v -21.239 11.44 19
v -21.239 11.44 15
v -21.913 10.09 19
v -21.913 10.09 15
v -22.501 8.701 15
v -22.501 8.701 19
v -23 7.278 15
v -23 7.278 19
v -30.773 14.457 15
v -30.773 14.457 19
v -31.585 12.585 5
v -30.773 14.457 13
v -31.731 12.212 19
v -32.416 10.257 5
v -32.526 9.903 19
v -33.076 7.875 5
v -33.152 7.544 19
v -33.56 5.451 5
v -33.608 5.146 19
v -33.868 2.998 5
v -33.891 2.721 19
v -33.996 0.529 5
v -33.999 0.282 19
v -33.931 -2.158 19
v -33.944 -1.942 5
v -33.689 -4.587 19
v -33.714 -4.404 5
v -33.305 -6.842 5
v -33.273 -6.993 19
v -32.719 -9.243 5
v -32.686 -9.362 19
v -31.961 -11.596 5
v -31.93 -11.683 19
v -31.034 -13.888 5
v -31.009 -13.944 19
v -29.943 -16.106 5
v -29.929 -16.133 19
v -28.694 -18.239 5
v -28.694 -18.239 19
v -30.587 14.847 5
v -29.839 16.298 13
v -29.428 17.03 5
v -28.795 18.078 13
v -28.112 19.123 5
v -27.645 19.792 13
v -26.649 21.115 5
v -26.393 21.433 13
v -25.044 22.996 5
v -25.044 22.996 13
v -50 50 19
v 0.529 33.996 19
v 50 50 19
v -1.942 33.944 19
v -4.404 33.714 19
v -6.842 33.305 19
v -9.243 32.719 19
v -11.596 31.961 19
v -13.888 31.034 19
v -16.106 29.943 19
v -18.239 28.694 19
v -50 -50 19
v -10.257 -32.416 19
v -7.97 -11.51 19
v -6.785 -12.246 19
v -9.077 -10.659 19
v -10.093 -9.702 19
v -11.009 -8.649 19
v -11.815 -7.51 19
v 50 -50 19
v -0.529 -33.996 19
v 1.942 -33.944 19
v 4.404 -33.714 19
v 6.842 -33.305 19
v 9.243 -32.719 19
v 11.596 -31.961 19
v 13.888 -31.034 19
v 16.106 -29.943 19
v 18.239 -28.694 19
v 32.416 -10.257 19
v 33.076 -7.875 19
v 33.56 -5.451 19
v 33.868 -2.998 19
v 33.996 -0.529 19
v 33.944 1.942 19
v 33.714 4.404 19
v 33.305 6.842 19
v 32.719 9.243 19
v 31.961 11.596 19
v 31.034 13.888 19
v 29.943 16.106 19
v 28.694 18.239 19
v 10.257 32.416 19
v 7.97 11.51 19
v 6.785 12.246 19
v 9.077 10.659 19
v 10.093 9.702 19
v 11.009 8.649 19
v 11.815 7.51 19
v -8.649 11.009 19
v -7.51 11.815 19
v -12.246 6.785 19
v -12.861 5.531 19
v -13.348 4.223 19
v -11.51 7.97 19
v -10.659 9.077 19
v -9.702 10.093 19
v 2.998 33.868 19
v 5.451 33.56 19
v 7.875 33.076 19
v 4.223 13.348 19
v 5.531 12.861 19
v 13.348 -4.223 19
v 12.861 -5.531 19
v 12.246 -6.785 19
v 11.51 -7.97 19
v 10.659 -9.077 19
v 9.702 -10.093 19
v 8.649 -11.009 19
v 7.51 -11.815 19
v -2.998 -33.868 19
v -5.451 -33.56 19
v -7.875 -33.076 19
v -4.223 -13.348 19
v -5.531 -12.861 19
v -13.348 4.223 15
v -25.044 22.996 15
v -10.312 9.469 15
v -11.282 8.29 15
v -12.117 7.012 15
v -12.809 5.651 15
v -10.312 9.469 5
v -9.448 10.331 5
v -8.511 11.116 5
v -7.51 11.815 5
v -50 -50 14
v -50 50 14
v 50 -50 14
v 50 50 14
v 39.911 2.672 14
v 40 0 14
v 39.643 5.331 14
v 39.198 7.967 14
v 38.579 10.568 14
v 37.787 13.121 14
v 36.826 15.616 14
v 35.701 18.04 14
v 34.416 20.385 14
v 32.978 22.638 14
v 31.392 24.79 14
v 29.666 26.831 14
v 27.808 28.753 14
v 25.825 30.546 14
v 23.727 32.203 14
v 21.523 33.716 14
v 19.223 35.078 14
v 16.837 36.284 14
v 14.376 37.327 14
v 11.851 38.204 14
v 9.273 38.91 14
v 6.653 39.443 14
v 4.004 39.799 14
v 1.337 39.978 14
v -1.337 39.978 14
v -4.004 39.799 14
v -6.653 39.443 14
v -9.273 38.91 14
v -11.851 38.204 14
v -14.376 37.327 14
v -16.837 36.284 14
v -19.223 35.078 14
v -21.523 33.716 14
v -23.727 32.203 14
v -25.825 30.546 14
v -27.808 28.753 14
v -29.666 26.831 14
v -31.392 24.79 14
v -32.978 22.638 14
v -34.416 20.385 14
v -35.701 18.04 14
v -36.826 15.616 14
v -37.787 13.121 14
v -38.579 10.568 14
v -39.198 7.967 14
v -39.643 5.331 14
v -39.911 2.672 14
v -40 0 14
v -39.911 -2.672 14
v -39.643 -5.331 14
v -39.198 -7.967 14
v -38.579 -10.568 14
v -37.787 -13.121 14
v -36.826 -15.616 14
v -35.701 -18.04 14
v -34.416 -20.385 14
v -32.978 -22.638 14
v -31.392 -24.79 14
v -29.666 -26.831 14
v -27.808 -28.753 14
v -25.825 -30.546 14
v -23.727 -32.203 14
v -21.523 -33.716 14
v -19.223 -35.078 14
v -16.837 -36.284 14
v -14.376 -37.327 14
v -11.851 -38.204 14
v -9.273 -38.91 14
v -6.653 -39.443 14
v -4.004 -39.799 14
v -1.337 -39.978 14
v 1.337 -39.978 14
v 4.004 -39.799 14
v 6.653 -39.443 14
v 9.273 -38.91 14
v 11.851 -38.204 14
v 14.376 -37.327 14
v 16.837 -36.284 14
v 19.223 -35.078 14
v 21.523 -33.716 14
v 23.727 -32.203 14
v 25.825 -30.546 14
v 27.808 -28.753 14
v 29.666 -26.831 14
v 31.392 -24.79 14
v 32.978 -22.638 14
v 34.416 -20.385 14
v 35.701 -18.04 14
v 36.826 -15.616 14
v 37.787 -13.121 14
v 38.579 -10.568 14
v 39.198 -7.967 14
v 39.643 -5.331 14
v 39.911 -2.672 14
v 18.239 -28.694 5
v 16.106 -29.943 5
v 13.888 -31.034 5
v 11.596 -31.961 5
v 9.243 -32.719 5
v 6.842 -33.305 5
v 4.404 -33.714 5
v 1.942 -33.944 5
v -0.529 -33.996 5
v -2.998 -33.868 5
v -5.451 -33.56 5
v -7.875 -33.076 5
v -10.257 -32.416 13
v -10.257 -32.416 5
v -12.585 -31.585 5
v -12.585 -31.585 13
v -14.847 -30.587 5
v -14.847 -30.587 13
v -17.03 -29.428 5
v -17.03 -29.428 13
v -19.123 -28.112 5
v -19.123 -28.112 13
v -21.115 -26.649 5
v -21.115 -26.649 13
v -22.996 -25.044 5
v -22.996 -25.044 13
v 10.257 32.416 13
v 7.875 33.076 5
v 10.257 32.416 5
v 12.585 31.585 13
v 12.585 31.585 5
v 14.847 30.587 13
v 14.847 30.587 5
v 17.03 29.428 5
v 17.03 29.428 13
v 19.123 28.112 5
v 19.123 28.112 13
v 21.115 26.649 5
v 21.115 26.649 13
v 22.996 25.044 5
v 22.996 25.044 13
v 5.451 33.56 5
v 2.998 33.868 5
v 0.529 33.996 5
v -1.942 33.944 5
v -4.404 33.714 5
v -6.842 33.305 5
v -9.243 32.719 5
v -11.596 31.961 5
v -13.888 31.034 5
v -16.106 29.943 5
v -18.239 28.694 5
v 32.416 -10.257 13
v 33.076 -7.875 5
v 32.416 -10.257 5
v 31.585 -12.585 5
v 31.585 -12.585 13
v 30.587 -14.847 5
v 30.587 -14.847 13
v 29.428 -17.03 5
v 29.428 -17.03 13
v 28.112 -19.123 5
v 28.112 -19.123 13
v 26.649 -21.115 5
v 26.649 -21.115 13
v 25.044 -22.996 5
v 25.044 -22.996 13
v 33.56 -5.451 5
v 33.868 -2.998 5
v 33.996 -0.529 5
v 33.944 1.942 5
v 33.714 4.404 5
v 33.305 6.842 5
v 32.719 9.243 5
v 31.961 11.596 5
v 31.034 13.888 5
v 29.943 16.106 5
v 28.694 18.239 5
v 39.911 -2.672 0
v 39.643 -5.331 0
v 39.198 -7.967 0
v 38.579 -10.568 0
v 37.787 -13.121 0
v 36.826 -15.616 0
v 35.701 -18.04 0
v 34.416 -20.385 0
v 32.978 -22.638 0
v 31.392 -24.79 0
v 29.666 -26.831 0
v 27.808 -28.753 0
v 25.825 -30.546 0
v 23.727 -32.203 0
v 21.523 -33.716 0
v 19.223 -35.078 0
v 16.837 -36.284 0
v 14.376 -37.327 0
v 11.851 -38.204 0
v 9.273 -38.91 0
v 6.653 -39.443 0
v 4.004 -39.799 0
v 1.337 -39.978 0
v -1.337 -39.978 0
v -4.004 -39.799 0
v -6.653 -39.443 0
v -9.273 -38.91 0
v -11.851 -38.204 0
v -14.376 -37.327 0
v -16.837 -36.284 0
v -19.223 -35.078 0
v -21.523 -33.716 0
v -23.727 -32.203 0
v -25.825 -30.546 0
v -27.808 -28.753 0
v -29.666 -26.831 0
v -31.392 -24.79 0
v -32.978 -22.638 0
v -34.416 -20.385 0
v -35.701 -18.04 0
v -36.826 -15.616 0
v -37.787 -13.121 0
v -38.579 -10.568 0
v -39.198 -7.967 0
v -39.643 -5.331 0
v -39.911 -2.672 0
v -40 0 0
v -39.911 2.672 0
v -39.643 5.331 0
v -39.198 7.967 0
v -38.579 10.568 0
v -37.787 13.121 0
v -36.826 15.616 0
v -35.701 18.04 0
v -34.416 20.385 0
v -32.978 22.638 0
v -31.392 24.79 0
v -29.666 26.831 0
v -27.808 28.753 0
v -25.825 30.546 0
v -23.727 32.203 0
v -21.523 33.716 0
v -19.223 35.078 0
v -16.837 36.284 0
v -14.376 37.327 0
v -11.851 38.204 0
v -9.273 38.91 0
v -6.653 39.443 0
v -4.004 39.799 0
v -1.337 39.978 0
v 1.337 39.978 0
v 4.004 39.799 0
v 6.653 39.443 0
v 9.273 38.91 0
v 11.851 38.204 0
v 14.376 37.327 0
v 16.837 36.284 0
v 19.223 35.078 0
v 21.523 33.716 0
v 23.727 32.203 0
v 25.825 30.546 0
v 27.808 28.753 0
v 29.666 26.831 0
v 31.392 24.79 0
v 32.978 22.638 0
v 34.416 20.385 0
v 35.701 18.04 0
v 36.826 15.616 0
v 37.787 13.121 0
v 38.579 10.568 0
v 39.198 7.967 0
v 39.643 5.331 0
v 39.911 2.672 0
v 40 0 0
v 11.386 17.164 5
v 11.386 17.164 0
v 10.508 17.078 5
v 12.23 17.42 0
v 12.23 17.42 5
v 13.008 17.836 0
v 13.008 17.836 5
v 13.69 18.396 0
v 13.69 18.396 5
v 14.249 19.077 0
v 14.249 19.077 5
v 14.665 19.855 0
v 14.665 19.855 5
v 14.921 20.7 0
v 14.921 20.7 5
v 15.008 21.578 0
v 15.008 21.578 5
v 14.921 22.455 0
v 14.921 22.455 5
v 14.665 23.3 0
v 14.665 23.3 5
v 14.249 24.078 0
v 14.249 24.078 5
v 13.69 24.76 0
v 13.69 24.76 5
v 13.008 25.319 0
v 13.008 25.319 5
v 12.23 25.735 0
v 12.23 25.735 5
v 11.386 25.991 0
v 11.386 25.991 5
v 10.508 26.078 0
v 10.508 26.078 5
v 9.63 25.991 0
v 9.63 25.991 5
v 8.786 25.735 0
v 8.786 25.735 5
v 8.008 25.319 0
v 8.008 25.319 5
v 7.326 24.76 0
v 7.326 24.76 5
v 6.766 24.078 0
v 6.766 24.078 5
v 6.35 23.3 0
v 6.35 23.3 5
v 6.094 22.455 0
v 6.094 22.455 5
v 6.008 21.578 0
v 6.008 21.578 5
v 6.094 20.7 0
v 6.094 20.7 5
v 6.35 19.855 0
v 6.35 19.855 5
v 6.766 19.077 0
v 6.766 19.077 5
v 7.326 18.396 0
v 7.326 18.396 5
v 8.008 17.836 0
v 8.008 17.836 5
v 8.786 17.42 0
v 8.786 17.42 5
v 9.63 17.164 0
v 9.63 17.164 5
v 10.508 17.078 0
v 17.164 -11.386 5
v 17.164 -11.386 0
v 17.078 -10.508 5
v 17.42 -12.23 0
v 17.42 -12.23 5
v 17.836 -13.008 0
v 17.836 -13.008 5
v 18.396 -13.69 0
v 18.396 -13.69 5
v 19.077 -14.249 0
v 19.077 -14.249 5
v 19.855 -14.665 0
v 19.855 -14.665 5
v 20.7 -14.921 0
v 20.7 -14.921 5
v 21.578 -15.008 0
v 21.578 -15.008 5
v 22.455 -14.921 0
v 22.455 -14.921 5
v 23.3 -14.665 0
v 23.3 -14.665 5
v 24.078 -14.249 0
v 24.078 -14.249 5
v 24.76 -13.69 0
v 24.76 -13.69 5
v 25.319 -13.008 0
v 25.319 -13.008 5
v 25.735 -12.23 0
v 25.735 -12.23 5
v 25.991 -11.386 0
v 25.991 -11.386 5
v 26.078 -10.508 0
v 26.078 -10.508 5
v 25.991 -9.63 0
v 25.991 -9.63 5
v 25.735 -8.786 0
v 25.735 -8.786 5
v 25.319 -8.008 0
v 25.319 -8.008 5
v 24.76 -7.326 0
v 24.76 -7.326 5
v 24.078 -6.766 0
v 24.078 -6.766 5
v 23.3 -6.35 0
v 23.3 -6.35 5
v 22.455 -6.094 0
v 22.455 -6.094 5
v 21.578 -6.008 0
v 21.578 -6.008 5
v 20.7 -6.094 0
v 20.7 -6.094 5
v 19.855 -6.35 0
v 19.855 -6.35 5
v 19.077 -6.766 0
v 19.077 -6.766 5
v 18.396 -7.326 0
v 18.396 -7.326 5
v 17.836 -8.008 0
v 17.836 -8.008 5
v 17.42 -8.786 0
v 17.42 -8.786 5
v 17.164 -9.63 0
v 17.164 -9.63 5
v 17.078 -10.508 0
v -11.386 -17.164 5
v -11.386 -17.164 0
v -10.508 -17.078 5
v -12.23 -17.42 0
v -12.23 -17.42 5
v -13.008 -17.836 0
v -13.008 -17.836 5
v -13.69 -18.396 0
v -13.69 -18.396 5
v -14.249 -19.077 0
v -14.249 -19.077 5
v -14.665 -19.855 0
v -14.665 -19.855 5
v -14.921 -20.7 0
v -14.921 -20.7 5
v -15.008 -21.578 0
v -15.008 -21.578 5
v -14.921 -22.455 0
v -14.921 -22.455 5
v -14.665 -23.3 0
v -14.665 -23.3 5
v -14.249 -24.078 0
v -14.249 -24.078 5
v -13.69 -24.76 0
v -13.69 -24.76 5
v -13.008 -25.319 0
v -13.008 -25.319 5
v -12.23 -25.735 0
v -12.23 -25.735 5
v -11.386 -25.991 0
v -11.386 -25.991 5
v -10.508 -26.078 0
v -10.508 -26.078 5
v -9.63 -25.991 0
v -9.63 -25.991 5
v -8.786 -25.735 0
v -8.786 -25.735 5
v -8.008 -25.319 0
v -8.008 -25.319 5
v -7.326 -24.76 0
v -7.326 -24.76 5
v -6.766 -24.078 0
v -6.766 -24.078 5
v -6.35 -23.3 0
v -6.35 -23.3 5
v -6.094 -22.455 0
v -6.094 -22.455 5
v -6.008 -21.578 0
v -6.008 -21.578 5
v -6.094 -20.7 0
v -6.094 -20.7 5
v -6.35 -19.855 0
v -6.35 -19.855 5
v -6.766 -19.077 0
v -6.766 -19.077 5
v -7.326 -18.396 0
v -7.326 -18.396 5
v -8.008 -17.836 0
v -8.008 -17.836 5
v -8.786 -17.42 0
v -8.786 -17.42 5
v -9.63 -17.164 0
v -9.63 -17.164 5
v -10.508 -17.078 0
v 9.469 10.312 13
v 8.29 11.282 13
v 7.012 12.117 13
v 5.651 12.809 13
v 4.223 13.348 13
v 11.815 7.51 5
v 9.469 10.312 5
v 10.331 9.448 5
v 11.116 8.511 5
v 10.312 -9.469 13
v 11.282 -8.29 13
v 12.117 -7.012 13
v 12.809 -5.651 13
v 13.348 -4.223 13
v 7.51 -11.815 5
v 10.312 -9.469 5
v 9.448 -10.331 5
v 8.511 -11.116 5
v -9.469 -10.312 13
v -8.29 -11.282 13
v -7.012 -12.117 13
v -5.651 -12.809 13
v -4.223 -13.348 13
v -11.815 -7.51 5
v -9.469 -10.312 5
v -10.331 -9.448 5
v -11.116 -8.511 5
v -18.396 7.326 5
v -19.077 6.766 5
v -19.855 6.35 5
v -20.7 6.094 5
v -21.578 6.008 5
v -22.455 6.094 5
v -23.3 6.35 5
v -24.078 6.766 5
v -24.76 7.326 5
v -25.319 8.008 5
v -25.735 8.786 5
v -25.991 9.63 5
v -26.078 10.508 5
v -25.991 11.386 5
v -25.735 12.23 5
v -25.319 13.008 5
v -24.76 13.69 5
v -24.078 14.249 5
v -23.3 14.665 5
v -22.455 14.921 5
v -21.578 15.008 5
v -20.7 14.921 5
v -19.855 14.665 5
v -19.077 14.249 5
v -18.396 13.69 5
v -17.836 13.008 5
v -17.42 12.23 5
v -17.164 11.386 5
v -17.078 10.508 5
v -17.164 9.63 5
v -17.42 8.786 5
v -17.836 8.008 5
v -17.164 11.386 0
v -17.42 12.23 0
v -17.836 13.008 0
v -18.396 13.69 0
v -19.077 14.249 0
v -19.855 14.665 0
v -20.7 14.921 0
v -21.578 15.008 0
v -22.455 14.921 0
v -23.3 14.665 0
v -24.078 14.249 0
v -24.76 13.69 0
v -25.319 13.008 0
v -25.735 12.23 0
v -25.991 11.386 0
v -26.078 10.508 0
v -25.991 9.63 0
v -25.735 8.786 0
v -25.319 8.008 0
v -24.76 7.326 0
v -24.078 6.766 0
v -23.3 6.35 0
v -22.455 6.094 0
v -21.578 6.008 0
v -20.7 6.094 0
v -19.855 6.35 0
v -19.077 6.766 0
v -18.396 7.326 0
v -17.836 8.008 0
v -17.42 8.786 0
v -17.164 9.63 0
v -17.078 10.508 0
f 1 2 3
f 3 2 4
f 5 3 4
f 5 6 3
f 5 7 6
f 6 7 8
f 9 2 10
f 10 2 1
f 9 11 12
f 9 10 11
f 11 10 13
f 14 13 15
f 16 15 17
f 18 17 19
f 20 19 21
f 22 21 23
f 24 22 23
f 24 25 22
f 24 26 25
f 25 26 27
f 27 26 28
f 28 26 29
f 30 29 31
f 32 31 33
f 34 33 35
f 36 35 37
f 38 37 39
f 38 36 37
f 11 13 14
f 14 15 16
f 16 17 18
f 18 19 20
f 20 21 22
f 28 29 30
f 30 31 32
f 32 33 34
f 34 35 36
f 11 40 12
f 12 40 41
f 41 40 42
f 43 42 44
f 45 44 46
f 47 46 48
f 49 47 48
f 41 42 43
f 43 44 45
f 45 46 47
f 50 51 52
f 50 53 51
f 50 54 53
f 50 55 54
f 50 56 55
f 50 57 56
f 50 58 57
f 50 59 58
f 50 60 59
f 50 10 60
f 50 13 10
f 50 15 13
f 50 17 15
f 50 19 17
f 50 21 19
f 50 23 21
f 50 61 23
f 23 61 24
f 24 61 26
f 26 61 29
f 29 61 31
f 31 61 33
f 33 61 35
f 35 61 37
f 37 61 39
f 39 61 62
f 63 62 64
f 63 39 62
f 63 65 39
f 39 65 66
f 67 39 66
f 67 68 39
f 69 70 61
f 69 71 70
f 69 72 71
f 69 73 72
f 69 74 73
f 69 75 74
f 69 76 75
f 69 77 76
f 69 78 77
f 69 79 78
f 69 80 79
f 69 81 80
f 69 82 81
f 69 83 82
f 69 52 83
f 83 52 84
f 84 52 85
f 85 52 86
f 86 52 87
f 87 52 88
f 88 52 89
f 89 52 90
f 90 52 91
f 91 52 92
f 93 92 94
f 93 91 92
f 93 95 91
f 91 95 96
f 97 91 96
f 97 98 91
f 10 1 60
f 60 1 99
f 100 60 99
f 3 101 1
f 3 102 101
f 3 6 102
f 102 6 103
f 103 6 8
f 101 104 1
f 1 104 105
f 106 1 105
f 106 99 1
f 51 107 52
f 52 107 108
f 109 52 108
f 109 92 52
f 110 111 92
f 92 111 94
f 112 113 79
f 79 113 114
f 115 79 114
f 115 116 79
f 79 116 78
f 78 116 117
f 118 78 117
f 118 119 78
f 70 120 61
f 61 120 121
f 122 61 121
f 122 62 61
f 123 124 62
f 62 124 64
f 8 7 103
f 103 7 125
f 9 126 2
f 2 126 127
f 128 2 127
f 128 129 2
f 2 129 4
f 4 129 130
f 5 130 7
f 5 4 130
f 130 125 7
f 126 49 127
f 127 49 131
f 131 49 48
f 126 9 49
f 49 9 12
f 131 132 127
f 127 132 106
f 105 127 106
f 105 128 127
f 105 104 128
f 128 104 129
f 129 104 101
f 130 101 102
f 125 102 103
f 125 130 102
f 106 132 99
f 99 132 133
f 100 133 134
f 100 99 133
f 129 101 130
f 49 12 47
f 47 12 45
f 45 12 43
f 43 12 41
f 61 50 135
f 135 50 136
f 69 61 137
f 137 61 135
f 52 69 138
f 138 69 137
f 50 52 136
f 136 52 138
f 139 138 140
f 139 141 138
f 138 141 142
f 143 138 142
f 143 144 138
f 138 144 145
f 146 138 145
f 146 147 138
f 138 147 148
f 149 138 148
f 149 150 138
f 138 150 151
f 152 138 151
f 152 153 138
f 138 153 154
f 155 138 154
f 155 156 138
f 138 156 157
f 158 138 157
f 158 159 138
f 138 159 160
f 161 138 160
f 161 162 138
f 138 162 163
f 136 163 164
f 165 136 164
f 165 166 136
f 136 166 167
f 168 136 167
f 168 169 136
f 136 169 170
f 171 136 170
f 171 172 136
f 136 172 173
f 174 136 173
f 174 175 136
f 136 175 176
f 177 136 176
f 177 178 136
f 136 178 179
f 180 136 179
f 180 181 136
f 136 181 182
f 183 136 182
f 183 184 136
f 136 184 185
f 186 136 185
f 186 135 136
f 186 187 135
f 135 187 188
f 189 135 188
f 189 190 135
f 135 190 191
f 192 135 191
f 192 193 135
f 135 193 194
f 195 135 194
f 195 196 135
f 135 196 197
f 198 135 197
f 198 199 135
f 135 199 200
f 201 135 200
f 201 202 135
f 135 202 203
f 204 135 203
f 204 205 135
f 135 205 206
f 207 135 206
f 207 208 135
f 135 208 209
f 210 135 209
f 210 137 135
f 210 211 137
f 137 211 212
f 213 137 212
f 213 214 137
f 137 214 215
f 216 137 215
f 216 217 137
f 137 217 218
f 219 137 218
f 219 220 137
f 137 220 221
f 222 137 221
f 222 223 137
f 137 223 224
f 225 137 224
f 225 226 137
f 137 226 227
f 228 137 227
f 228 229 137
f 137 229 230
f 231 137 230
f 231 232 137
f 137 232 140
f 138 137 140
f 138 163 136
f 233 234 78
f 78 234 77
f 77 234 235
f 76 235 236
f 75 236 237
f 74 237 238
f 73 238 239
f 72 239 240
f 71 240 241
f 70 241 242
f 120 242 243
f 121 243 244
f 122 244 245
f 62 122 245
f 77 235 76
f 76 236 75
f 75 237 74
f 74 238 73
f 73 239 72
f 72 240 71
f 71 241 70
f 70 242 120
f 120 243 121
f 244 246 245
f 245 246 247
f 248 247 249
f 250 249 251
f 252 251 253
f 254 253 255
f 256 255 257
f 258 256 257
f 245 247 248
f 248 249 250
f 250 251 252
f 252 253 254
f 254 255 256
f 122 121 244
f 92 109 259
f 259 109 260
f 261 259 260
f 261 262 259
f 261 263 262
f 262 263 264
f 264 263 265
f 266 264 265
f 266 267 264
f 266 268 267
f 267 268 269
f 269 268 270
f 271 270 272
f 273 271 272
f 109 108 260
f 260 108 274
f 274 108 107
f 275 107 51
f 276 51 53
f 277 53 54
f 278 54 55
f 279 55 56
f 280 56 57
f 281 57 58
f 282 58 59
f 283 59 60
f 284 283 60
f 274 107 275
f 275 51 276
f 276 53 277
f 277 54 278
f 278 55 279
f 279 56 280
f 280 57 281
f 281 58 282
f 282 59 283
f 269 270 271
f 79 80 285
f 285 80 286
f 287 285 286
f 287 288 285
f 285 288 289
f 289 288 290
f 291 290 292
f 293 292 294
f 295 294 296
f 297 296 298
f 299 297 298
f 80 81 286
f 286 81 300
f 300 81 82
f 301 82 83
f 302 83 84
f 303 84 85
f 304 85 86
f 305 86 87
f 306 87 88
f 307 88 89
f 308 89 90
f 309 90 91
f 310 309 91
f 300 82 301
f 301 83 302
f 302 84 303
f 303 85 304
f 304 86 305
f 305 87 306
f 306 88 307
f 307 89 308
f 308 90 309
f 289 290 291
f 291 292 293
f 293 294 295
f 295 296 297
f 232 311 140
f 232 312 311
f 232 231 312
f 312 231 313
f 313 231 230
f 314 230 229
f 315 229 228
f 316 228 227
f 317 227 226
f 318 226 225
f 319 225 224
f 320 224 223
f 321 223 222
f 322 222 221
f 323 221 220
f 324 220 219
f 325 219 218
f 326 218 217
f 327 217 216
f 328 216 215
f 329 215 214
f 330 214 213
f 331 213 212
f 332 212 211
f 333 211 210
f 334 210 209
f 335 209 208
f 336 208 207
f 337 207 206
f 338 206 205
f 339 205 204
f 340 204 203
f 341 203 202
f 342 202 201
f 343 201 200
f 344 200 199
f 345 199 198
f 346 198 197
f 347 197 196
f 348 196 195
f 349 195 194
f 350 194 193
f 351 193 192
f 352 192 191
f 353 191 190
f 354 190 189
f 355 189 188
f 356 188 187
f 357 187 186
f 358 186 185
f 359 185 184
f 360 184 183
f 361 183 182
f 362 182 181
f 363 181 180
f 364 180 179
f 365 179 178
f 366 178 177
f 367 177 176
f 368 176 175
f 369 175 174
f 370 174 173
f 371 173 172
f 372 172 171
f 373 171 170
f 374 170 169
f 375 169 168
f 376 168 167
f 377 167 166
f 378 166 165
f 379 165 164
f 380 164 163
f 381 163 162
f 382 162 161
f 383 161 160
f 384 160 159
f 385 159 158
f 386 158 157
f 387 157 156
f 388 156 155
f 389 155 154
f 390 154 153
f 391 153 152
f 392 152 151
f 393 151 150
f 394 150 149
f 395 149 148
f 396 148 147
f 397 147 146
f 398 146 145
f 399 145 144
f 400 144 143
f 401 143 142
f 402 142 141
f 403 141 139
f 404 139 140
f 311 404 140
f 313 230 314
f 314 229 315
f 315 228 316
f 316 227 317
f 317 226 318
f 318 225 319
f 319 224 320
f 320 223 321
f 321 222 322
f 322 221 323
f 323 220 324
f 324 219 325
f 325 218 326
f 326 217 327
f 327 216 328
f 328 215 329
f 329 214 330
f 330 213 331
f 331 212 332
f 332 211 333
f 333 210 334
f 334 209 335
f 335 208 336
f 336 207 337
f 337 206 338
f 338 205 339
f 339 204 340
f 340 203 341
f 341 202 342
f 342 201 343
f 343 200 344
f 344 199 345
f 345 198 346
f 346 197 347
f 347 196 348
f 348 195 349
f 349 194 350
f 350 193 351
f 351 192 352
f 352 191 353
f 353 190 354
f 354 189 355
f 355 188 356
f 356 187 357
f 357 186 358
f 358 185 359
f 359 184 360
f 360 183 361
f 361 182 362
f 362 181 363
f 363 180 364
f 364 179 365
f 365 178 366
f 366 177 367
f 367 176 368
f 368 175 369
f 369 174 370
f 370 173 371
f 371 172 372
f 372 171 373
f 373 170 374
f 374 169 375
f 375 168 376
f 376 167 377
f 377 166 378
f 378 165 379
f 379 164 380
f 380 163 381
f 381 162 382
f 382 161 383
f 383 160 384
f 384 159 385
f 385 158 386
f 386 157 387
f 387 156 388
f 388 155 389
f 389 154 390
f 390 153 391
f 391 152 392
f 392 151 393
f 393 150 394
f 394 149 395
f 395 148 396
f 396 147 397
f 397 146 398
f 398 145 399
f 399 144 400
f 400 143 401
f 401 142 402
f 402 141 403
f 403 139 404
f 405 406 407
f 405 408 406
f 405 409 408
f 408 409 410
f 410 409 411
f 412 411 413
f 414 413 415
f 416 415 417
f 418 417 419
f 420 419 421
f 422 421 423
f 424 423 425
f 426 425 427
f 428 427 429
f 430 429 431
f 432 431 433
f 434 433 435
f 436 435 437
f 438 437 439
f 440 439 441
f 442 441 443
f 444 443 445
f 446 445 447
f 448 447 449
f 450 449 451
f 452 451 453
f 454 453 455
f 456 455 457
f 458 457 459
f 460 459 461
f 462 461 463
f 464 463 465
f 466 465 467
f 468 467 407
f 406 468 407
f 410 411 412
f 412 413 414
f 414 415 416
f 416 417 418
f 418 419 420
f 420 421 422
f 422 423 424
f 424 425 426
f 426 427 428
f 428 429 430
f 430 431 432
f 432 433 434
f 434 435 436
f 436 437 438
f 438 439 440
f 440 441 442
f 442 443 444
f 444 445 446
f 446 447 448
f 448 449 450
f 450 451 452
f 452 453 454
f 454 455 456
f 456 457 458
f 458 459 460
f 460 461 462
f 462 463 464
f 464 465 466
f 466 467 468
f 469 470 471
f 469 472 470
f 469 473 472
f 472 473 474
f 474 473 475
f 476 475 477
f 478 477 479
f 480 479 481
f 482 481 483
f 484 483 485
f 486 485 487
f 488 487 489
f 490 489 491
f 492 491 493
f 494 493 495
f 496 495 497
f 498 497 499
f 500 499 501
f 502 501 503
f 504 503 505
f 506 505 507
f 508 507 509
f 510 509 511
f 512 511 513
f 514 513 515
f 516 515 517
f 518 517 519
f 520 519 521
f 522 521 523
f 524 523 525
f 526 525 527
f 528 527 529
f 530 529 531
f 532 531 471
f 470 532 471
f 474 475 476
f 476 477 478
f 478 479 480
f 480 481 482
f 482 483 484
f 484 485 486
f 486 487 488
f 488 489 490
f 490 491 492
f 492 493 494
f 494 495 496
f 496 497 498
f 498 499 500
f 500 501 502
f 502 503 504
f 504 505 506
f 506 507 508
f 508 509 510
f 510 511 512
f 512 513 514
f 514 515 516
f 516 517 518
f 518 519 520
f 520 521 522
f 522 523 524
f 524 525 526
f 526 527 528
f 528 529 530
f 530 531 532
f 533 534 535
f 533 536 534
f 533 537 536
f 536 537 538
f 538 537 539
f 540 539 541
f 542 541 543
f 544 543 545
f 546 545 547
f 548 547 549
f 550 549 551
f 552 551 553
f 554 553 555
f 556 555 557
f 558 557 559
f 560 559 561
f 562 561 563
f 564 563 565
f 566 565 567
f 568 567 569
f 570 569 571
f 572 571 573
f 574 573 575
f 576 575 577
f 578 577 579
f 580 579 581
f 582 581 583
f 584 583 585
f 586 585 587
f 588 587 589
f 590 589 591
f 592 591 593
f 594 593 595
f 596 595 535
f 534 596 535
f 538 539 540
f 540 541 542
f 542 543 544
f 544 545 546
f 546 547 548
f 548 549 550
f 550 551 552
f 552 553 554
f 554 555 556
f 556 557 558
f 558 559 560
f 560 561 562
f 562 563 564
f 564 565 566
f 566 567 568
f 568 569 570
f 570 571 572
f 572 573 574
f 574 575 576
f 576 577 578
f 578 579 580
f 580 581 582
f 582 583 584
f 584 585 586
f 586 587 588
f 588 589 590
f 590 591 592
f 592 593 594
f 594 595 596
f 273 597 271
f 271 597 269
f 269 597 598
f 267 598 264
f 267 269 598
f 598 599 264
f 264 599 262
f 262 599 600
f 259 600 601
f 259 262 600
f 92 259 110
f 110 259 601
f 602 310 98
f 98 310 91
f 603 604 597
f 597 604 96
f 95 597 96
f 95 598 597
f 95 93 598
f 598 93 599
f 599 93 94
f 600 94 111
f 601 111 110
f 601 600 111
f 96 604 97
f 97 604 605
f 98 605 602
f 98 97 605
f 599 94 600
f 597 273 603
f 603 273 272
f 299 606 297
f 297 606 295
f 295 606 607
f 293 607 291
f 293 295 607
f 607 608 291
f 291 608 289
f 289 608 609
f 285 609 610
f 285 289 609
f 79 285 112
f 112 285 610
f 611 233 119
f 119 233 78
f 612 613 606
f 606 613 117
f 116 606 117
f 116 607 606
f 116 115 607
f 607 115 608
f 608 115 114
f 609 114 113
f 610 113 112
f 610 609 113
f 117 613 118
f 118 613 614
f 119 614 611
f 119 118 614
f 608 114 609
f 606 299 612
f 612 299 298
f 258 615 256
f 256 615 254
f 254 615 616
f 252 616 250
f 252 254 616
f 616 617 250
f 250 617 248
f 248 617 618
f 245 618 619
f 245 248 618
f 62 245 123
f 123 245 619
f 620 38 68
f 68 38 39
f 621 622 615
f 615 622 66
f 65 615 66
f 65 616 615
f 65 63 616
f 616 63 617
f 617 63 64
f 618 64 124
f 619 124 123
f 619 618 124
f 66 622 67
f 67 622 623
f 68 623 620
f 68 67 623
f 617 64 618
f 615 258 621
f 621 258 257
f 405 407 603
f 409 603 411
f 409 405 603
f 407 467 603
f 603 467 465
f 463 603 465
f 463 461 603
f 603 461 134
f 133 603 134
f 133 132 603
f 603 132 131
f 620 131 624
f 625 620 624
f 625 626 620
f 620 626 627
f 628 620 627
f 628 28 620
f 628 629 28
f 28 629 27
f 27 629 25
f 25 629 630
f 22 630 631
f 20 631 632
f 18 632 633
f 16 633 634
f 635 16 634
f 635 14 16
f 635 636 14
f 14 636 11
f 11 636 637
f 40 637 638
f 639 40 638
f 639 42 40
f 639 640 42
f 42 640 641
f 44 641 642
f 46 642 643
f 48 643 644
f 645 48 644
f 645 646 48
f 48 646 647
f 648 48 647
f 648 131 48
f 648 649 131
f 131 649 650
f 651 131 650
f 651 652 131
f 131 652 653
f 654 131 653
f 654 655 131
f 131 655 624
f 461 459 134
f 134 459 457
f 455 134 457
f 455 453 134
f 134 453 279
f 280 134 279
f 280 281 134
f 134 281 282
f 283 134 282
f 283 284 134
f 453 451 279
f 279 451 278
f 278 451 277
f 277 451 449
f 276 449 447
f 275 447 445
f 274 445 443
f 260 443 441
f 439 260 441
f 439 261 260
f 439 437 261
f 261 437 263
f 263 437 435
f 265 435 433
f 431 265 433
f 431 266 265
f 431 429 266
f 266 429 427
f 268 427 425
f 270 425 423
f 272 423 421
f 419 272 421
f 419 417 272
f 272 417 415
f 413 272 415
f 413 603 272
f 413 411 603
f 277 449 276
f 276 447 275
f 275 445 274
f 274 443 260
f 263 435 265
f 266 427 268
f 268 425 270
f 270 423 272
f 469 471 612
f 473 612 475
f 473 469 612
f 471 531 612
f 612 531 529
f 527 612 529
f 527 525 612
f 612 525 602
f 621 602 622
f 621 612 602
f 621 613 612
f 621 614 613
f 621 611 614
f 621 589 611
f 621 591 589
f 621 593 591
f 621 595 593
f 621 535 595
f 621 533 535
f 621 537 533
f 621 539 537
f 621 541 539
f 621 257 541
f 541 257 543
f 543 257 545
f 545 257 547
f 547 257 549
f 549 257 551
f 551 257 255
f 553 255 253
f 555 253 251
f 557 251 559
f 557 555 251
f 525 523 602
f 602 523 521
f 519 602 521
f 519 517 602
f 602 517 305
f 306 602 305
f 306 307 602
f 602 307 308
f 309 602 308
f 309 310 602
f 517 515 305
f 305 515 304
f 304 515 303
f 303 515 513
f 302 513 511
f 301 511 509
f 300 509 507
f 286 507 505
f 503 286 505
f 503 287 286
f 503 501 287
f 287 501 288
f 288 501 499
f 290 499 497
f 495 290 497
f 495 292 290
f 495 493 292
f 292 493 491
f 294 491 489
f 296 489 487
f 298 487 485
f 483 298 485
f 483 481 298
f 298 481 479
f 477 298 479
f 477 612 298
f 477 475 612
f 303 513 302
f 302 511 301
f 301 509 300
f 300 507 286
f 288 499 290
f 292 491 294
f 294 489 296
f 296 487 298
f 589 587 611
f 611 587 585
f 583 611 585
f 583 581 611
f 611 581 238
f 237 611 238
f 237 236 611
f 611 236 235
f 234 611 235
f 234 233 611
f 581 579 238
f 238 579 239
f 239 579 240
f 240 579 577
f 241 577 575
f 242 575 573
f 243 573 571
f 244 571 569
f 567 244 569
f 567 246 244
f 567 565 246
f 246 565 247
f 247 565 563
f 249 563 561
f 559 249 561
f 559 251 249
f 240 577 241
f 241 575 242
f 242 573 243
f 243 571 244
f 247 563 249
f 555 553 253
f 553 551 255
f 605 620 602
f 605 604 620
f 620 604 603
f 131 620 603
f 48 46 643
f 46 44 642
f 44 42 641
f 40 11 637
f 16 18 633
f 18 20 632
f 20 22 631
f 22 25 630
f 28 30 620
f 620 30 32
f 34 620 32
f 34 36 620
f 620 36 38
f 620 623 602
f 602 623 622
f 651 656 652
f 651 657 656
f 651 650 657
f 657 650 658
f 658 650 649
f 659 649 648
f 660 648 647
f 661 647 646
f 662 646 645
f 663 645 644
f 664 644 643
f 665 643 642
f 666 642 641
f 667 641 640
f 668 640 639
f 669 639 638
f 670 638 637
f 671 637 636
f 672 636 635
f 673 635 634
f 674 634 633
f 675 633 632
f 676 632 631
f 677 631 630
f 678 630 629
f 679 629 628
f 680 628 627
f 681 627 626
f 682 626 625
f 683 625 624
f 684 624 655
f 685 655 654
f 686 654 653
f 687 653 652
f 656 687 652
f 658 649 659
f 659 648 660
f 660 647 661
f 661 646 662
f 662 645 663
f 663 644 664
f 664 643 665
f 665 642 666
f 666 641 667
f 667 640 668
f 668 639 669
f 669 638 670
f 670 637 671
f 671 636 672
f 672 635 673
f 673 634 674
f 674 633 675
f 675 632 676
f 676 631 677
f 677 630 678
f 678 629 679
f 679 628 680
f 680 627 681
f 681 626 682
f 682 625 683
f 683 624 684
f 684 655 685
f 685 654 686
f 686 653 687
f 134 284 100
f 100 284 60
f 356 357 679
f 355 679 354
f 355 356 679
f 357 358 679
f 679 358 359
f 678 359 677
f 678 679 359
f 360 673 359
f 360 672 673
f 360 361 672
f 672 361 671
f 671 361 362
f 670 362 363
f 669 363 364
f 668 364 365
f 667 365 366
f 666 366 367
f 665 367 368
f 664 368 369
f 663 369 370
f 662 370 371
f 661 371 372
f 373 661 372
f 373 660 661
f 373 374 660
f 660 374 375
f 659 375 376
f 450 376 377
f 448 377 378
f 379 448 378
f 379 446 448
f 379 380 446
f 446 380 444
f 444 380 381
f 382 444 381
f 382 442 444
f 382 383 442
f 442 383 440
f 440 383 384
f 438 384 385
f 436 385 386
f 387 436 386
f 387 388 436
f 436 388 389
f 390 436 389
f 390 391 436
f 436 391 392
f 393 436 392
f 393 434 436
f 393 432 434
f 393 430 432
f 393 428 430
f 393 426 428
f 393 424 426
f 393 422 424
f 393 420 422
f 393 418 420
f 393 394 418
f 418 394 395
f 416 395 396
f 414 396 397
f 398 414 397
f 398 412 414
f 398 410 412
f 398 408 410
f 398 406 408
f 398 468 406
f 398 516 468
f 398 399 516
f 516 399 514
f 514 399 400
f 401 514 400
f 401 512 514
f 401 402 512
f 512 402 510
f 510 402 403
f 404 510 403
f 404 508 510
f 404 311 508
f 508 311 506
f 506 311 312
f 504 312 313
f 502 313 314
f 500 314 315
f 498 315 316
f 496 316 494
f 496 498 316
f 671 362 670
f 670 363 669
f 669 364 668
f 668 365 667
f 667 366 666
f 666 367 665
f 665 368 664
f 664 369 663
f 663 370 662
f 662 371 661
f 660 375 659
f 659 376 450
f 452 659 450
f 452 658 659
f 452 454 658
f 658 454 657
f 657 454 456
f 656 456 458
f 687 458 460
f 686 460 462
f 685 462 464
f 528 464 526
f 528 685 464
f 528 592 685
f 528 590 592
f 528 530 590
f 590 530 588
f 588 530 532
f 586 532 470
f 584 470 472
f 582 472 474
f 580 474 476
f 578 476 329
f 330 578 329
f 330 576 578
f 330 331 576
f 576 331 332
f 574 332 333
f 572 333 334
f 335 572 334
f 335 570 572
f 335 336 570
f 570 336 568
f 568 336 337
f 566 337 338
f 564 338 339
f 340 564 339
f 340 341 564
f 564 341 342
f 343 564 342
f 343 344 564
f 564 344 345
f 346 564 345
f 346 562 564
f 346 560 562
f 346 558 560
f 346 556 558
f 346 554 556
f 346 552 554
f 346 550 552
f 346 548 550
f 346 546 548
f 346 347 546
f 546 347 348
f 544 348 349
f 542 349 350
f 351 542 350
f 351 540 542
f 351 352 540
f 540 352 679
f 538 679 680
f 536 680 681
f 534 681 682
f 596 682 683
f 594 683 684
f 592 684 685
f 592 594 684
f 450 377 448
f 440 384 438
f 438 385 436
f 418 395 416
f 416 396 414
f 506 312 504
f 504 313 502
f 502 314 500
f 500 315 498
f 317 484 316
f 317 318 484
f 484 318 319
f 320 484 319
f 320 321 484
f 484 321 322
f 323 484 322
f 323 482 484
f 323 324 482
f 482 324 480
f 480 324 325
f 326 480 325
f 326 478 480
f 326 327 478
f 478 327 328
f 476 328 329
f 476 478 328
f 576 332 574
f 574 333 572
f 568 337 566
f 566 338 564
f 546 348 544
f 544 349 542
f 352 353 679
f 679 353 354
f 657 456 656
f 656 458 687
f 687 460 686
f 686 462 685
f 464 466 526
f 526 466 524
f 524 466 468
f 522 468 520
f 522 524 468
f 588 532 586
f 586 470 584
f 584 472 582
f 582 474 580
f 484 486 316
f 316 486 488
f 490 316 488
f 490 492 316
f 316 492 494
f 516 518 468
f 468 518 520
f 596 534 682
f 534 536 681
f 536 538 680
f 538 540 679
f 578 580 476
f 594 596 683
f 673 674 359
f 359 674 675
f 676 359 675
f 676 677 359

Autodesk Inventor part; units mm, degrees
ref_plane "YZ Plane" through (0, 0, 0) normal (1, 0, 0) x (0, 1, 0)
ref_plane "XZ Plane" through (0, 0, 0) normal (0, 1, 0) x (-1, 0, 0)
ref_plane "XY Plane" through (0, 0, 0) normal (0, 0, 1) x (1, 0, 0)
sketch "Sketch5" plane through (0, 0, 0) normal (0, 0, 1) x (1, 0, 0)
  circle A0 centre (0, 0) radius 34
  dimension "d9" = 68
extrude "Extrusion4" add sketch "Sketch5" along normal blind 5
sketch "Sketch6" plane through (0, 0, 5) normal (0, 0, 1) x (1, 0, 0)
  line L0 (0, 0) -> (-25.0441, 22.9955) construction
  circle A0 centre (0, 0) radius 34 construction
  line L1 (0, 0) -> (-18.239, 28.6939) construction
  line L2 (-25.0441, 22.9955) -> (-10.3123, 9.4687)
  line L3 (-18.239, 28.6939) -> (-7.5102, 11.8151)
  arc A1 (-7.5102, 11.8151) -> (-10.3123, 9.4687) centre (0, 0) ccw
  arc A2 (-18.239, 28.6939) -> (-25.0441, 22.9955) centre (0, 0) ccw
  dimension "d12" = 15
  dimension "d14" = 20
extrude "Extrusion5" add sketch "Sketch6" along normal blind 14
sketch "Sketch7" plane through (-10.3123, 9.4687, 5) normal (-0.6763389, -0.7365906, 0) x (0.7365906, -0.6763389, 0)
  line L0 (-20, 14) -> (0, 14)
  line L1 (0, 14) -> (0, 8)
  line L2 (0, 8) -> (-20, 8)
  line L3 (-20, 8) -> (-20, 14)
  line L4 (14, -8.8) -> (14, 17.8) projected
  point P0 (14, -5)
  dimension "d17" = 6
  dimension "d18" = 20
revolve "Revolution1" add sketch "Sketch7" angle 25 about axis through (0, 0, 5) along (0, 0, 1)
sketch "Sketch8" plane through (0, 0, 5) normal (0, 0, 1) x (1, 0, 0)
  circle A0 centre (-21.5775, 10.5076) radius 4.5
  circle A1 centre (0, 0) radius 24 construction
  dimension "d25" = 48
  dimension "d21" = 9
extrude "Extrusion6" cut sketch "Sketch8" against normal up to surface (5 mm away)
pattern_circular "Circular Pattern1" count 4 over 360 about axis through (0, 0, 5) along (0, 0, 1) of "Extrusion6", "Revolution1", "Extrusion5"
sketch "Sketch9" plane through (0, 0, 0) normal (0, 0, -1) x (-1, 0, 0)
  circle A0 centre (0, 0) radius 34
  circle A1 centre (0, 0) radius 40
  dimension "d31" = 68
  dimension "d32" = 6
extrude "Extrusion7" add sketch "Sketch9" against normal blind 19
sketch "Sketch10" plane through (0, 0, 19) normal (0, 0, 1) x (1, 0, 0)
  circle A0 centre (0, 0) radius 40
  line L0 (-50, 50) -> (50, 50)
  line L1 (50, 50) -> (50, -50)
  line L2 (50, -50) -> (-50, -50)
  line L3 (-50, -50) -> (-50, 50)
  point P0 (-50, 0)
  point P1 (0, 50)
  dimension "d35" = 100
  dimension "d36" = 100
  dimension "d37" = 80
extrude "Extrusion8" add sketch "Sketch10" against normal blind 5
sketch "Sketch11" plane through (0, 0, 19) normal (0, 0, 1) x (1, 0, 0)
  line L0 (-7.5102, 11.8151) -> (-18.239, 28.6939) projected
  line L1 (-13.3478, 4.2234) -> (-32.416, 10.2569) projected
  arc A0 (-12.8746, 20.2545) -> (-22.8819, 7.2402) centre (0, 0) ccw
  arc A1 (-32.416, 10.2569) -> (-28.6939, -18.239) centre (0, 0) ccw projected
  arc A2 (-18.239, 28.6939) -> (-32.416, 10.2569) centre (0, 0) ccw
  line L2 (-30.7733, 14.4571) -> (-21.1185, 11.4021)
  dimension "d40" = 10
  dimension "d41" = 4.5
extrude "Extrusion9" cut sketch "Sketch11" against normal up to surface (6 mm away) contours A0 L1 A2 L2
sketch "Sketch14" plane through (0, 0, 13) normal (0, 0, -1) x (-0.865517, 0.5008796, 0)
  line L0 (33.1941, 7.3589) -> (13.6681, 3.0302)
  line L1 (13.6681, 3.0302) -> (13.6681, -3.0302)
  line L2 (13.6681, -3.0302) -> (23.4311, -5.1946)
  line L3 (23.4311, -5.1946) -> (13.6681, -3.0302) projected
  line L4 (23.4311, -5.1946) -> (33.876, -2.9009)
  line L5 (33.876, -2.9009) -> (33.1941, 7.3589)
  point P0 (0, 0)
extrude "Extrusion10" cut sketch "Sketch14" against normal blind 10
sketch "Sketch15" plane through (-10.3123, 9.4687, 5) normal (-0.6763389, -0.7365906, 0) x (0.7365906, -0.6763389, 0)
  line L0 (0, 0) -> (0, 14) projected
  line L1 (-20, 14) -> (0, 14)
  line L2 (0, 14) -> (0, 10)
  line L3 (0, 10) -> (-20, 10)
  line L4 (-20, 10) -> (-20, 14)
  line L5 (14, -8.8) -> (14, 17.8) projected
  point P0 (14, -5)
  dimension "d48" = 4
revolve "Revolution2" add sketch "Sketch15" angle 25 about axis through (0, 0, 5) along (0, 0, 1)
sketch "Sketch16" plane through (0, 0, 19) normal (0, 0, 1) x (1, 0, 0)
  line L0 (-32.416, 10.2569) -> (-23.0004, 7.2777)
  line L1 (-13.3478, 4.2234) -> (-32.416, 10.2569) projected
  line L2 (-21.2392, 11.4403) -> (-30.7733, 14.4571)
  arc A0 (-30.7733, 14.4571) -> (-32.416, 10.2569) centre (0, 0) ccw
  arc A1 (-21.2392, 11.4403) -> (-23.0004, 7.2777) centre (0, 0) ccw
  arc A2 (-32.416, 10.2569) -> (-28.6939, -18.239) centre (0, 0) ccw projected
  dimension "d50" = 4.5
  dimension "d51" = 10
extrude "Extrusion11" cut sketch "Sketch16" against normal blind 10
properties part number "female 4 bay con"
